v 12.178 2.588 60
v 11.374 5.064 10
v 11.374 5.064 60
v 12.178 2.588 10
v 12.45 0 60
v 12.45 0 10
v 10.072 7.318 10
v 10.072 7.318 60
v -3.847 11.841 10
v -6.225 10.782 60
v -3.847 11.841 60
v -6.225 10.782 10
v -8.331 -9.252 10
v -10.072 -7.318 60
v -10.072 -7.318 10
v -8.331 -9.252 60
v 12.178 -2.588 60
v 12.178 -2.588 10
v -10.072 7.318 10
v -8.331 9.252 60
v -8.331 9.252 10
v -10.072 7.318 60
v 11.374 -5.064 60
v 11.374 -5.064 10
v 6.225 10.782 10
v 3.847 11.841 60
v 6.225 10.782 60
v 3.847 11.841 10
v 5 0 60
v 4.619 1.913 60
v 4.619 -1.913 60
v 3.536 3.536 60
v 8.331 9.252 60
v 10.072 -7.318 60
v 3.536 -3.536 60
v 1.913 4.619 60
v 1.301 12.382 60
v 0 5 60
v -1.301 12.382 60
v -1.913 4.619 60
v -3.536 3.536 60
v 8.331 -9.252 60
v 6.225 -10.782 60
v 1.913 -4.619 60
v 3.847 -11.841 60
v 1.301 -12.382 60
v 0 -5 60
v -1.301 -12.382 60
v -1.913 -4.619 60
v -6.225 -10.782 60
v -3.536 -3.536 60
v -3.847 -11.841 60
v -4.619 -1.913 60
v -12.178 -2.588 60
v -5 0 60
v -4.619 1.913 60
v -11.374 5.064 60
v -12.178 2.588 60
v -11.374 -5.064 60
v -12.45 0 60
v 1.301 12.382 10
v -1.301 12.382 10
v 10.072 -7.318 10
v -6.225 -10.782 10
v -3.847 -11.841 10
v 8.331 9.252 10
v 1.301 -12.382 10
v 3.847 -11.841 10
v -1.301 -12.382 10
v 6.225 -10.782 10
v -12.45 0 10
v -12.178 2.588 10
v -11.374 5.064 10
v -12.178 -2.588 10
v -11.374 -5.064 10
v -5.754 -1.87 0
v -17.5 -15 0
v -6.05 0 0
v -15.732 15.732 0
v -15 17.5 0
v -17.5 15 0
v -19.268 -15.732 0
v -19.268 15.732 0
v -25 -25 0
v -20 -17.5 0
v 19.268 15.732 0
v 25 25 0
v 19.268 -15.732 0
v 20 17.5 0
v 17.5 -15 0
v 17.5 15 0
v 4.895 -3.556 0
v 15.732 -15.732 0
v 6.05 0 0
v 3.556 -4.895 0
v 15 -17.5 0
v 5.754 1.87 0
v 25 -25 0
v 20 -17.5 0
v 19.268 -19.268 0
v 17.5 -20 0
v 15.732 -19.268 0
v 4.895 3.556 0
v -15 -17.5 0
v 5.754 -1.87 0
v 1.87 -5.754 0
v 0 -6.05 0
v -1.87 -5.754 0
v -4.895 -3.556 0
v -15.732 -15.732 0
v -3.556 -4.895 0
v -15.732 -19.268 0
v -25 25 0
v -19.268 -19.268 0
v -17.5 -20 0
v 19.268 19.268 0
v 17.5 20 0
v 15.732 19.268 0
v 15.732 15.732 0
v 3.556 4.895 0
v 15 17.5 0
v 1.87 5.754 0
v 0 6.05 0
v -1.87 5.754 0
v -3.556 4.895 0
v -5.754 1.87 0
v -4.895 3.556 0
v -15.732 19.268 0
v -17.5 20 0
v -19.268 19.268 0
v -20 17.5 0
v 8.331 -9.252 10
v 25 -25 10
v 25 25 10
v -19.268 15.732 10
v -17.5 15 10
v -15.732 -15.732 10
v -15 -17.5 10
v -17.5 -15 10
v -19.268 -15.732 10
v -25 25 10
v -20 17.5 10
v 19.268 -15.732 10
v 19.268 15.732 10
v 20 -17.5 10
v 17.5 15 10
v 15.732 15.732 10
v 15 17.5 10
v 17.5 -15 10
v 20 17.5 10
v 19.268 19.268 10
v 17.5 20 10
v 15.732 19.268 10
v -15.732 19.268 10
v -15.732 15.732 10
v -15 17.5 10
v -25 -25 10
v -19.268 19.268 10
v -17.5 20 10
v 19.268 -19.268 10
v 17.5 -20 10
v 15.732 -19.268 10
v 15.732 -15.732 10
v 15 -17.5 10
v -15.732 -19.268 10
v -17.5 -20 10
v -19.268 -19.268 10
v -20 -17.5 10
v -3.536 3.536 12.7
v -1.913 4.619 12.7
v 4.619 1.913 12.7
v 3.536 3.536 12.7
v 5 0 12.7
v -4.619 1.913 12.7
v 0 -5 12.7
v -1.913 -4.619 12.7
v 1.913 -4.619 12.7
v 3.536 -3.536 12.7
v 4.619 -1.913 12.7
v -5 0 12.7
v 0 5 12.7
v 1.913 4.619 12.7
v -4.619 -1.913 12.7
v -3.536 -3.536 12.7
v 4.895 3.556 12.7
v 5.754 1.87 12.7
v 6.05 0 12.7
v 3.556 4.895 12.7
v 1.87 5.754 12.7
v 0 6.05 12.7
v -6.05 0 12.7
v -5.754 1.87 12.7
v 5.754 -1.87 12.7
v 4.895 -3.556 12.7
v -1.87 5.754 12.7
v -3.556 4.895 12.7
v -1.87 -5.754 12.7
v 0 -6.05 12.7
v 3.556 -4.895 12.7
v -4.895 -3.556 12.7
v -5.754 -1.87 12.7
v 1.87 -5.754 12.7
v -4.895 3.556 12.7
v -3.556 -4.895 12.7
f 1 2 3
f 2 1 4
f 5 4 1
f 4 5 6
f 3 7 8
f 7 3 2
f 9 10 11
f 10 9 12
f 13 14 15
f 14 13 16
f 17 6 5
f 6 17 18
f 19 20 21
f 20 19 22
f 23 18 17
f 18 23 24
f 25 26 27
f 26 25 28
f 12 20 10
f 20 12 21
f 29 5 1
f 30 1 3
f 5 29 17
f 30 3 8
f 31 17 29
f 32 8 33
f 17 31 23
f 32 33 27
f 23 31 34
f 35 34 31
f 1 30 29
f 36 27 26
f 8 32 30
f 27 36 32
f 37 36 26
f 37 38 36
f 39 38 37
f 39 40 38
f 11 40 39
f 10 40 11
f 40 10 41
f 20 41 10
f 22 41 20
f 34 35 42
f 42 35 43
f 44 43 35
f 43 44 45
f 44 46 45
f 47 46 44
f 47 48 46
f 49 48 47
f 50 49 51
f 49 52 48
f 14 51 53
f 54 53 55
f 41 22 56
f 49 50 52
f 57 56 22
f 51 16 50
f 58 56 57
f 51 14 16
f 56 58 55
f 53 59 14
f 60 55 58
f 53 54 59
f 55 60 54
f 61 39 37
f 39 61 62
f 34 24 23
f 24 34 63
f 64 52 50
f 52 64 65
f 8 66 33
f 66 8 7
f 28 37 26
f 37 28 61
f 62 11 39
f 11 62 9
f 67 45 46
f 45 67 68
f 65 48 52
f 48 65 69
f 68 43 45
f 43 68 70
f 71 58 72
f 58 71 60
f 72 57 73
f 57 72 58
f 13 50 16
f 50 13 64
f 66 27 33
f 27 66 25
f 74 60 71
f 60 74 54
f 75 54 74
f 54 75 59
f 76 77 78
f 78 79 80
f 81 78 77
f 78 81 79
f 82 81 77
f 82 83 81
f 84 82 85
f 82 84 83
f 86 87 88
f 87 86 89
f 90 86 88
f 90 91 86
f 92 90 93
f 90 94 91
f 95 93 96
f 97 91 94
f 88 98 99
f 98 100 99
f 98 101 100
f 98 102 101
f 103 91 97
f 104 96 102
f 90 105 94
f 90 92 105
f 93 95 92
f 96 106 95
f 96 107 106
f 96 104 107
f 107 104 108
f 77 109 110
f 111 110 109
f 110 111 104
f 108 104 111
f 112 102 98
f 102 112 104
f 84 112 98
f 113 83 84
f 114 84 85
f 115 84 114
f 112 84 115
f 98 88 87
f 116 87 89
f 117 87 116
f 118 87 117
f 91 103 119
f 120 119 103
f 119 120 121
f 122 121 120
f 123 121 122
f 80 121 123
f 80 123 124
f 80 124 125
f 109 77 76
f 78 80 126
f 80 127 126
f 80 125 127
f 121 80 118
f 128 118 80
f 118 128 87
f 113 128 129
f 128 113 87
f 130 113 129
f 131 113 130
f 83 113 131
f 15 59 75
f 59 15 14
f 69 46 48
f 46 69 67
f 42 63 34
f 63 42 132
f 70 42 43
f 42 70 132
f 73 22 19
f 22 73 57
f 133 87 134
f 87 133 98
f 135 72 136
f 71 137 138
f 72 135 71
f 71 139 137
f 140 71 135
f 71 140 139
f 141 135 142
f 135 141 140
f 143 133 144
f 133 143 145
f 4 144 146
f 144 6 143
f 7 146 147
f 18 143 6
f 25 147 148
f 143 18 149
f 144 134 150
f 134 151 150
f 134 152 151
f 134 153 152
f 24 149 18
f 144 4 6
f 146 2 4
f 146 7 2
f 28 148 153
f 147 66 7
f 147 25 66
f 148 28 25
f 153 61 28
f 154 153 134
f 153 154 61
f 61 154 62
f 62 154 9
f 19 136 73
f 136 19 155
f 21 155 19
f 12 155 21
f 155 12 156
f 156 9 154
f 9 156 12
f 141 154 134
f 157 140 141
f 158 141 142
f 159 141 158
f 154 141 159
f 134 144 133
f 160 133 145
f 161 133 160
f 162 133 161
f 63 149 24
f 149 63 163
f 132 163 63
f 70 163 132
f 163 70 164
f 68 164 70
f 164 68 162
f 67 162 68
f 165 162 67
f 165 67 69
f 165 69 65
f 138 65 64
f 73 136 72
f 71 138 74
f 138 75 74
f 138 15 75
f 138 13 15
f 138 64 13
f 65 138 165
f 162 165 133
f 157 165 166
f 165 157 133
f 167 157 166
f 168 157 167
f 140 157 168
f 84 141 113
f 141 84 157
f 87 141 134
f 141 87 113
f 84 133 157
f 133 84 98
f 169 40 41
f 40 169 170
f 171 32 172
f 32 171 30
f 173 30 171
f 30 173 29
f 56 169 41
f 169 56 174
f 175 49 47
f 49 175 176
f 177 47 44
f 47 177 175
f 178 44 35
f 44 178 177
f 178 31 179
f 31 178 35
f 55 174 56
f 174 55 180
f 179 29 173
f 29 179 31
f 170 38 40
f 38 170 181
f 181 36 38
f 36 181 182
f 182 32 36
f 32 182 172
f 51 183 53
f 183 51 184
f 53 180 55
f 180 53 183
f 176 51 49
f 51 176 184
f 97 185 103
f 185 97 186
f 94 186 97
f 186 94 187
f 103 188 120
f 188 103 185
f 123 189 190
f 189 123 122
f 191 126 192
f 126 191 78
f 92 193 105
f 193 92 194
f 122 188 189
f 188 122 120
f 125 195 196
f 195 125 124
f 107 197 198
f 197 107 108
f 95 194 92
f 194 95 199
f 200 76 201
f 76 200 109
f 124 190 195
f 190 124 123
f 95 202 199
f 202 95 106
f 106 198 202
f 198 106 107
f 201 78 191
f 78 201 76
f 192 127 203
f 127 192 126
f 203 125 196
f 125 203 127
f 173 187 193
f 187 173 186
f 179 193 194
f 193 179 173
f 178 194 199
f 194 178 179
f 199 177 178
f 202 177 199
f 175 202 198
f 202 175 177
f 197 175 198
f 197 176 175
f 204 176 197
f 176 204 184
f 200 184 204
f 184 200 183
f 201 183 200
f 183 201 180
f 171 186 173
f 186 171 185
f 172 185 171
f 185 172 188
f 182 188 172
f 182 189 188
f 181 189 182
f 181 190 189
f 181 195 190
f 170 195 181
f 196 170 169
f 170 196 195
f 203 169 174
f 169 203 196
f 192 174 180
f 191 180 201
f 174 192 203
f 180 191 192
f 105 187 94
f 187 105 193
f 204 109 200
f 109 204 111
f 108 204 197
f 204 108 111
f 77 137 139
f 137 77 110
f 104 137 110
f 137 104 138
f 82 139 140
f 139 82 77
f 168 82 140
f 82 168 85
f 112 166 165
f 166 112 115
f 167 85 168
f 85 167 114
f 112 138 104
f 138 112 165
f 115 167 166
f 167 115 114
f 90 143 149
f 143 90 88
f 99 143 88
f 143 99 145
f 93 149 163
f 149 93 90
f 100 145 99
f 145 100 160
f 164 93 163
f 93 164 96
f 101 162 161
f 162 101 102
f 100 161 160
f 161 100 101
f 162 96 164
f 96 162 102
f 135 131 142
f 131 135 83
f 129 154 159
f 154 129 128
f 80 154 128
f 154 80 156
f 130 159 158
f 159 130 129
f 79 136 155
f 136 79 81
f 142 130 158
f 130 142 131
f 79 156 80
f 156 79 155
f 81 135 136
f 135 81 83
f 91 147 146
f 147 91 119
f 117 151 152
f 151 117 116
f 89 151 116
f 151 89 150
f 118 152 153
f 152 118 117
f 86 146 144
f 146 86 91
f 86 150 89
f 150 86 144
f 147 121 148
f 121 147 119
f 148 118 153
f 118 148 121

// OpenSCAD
// units in mm
// optics light tube for Akash

// editable
post_diameter_nominal = 25;
post_d_fudge = -0.1;

post_height = 60;

platexy = 50;
plate_t = 10;
inner_d = 10;

colm_diameter_nominal = 12;
colm_d_fudge = 0.1;
colm_h = 12.7;

mount_hole_d = 5;
hole_offset = 15;

// calculated
post_d = post_diameter_nominal + post_d_fudge;
colm_d = colm_diameter_nominal + colm_d_fudge;
holexy = platexy - hole_offset;

module body(){
    // geometry
    difference(){
        union(){
            cylinder(d=post_d, h=post_height);
            translate([0,0,plate_t/2]) cube([platexy, platexy, plate_t],center=true);
        }
        cylinder(d=inner_d, h=post_height);
        cylinder(d=colm_d, h=colm_h);
        
        translate([-holexy/2,-holexy/2,0]) cylinder(d=mount_hole_d, h=plate_t);
        translate([ holexy/2,-holexy/2,0]) cylinder(d=mount_hole_d, h=plate_t);
        translate([-holexy/2, holexy/2,0]) cylinder(d=mount_hole_d, h=plate_t);
        translate([ holexy/2, holexy/2,0]) cylinder(d=mount_hole_d, h=plate_t);
    }
}

body();
